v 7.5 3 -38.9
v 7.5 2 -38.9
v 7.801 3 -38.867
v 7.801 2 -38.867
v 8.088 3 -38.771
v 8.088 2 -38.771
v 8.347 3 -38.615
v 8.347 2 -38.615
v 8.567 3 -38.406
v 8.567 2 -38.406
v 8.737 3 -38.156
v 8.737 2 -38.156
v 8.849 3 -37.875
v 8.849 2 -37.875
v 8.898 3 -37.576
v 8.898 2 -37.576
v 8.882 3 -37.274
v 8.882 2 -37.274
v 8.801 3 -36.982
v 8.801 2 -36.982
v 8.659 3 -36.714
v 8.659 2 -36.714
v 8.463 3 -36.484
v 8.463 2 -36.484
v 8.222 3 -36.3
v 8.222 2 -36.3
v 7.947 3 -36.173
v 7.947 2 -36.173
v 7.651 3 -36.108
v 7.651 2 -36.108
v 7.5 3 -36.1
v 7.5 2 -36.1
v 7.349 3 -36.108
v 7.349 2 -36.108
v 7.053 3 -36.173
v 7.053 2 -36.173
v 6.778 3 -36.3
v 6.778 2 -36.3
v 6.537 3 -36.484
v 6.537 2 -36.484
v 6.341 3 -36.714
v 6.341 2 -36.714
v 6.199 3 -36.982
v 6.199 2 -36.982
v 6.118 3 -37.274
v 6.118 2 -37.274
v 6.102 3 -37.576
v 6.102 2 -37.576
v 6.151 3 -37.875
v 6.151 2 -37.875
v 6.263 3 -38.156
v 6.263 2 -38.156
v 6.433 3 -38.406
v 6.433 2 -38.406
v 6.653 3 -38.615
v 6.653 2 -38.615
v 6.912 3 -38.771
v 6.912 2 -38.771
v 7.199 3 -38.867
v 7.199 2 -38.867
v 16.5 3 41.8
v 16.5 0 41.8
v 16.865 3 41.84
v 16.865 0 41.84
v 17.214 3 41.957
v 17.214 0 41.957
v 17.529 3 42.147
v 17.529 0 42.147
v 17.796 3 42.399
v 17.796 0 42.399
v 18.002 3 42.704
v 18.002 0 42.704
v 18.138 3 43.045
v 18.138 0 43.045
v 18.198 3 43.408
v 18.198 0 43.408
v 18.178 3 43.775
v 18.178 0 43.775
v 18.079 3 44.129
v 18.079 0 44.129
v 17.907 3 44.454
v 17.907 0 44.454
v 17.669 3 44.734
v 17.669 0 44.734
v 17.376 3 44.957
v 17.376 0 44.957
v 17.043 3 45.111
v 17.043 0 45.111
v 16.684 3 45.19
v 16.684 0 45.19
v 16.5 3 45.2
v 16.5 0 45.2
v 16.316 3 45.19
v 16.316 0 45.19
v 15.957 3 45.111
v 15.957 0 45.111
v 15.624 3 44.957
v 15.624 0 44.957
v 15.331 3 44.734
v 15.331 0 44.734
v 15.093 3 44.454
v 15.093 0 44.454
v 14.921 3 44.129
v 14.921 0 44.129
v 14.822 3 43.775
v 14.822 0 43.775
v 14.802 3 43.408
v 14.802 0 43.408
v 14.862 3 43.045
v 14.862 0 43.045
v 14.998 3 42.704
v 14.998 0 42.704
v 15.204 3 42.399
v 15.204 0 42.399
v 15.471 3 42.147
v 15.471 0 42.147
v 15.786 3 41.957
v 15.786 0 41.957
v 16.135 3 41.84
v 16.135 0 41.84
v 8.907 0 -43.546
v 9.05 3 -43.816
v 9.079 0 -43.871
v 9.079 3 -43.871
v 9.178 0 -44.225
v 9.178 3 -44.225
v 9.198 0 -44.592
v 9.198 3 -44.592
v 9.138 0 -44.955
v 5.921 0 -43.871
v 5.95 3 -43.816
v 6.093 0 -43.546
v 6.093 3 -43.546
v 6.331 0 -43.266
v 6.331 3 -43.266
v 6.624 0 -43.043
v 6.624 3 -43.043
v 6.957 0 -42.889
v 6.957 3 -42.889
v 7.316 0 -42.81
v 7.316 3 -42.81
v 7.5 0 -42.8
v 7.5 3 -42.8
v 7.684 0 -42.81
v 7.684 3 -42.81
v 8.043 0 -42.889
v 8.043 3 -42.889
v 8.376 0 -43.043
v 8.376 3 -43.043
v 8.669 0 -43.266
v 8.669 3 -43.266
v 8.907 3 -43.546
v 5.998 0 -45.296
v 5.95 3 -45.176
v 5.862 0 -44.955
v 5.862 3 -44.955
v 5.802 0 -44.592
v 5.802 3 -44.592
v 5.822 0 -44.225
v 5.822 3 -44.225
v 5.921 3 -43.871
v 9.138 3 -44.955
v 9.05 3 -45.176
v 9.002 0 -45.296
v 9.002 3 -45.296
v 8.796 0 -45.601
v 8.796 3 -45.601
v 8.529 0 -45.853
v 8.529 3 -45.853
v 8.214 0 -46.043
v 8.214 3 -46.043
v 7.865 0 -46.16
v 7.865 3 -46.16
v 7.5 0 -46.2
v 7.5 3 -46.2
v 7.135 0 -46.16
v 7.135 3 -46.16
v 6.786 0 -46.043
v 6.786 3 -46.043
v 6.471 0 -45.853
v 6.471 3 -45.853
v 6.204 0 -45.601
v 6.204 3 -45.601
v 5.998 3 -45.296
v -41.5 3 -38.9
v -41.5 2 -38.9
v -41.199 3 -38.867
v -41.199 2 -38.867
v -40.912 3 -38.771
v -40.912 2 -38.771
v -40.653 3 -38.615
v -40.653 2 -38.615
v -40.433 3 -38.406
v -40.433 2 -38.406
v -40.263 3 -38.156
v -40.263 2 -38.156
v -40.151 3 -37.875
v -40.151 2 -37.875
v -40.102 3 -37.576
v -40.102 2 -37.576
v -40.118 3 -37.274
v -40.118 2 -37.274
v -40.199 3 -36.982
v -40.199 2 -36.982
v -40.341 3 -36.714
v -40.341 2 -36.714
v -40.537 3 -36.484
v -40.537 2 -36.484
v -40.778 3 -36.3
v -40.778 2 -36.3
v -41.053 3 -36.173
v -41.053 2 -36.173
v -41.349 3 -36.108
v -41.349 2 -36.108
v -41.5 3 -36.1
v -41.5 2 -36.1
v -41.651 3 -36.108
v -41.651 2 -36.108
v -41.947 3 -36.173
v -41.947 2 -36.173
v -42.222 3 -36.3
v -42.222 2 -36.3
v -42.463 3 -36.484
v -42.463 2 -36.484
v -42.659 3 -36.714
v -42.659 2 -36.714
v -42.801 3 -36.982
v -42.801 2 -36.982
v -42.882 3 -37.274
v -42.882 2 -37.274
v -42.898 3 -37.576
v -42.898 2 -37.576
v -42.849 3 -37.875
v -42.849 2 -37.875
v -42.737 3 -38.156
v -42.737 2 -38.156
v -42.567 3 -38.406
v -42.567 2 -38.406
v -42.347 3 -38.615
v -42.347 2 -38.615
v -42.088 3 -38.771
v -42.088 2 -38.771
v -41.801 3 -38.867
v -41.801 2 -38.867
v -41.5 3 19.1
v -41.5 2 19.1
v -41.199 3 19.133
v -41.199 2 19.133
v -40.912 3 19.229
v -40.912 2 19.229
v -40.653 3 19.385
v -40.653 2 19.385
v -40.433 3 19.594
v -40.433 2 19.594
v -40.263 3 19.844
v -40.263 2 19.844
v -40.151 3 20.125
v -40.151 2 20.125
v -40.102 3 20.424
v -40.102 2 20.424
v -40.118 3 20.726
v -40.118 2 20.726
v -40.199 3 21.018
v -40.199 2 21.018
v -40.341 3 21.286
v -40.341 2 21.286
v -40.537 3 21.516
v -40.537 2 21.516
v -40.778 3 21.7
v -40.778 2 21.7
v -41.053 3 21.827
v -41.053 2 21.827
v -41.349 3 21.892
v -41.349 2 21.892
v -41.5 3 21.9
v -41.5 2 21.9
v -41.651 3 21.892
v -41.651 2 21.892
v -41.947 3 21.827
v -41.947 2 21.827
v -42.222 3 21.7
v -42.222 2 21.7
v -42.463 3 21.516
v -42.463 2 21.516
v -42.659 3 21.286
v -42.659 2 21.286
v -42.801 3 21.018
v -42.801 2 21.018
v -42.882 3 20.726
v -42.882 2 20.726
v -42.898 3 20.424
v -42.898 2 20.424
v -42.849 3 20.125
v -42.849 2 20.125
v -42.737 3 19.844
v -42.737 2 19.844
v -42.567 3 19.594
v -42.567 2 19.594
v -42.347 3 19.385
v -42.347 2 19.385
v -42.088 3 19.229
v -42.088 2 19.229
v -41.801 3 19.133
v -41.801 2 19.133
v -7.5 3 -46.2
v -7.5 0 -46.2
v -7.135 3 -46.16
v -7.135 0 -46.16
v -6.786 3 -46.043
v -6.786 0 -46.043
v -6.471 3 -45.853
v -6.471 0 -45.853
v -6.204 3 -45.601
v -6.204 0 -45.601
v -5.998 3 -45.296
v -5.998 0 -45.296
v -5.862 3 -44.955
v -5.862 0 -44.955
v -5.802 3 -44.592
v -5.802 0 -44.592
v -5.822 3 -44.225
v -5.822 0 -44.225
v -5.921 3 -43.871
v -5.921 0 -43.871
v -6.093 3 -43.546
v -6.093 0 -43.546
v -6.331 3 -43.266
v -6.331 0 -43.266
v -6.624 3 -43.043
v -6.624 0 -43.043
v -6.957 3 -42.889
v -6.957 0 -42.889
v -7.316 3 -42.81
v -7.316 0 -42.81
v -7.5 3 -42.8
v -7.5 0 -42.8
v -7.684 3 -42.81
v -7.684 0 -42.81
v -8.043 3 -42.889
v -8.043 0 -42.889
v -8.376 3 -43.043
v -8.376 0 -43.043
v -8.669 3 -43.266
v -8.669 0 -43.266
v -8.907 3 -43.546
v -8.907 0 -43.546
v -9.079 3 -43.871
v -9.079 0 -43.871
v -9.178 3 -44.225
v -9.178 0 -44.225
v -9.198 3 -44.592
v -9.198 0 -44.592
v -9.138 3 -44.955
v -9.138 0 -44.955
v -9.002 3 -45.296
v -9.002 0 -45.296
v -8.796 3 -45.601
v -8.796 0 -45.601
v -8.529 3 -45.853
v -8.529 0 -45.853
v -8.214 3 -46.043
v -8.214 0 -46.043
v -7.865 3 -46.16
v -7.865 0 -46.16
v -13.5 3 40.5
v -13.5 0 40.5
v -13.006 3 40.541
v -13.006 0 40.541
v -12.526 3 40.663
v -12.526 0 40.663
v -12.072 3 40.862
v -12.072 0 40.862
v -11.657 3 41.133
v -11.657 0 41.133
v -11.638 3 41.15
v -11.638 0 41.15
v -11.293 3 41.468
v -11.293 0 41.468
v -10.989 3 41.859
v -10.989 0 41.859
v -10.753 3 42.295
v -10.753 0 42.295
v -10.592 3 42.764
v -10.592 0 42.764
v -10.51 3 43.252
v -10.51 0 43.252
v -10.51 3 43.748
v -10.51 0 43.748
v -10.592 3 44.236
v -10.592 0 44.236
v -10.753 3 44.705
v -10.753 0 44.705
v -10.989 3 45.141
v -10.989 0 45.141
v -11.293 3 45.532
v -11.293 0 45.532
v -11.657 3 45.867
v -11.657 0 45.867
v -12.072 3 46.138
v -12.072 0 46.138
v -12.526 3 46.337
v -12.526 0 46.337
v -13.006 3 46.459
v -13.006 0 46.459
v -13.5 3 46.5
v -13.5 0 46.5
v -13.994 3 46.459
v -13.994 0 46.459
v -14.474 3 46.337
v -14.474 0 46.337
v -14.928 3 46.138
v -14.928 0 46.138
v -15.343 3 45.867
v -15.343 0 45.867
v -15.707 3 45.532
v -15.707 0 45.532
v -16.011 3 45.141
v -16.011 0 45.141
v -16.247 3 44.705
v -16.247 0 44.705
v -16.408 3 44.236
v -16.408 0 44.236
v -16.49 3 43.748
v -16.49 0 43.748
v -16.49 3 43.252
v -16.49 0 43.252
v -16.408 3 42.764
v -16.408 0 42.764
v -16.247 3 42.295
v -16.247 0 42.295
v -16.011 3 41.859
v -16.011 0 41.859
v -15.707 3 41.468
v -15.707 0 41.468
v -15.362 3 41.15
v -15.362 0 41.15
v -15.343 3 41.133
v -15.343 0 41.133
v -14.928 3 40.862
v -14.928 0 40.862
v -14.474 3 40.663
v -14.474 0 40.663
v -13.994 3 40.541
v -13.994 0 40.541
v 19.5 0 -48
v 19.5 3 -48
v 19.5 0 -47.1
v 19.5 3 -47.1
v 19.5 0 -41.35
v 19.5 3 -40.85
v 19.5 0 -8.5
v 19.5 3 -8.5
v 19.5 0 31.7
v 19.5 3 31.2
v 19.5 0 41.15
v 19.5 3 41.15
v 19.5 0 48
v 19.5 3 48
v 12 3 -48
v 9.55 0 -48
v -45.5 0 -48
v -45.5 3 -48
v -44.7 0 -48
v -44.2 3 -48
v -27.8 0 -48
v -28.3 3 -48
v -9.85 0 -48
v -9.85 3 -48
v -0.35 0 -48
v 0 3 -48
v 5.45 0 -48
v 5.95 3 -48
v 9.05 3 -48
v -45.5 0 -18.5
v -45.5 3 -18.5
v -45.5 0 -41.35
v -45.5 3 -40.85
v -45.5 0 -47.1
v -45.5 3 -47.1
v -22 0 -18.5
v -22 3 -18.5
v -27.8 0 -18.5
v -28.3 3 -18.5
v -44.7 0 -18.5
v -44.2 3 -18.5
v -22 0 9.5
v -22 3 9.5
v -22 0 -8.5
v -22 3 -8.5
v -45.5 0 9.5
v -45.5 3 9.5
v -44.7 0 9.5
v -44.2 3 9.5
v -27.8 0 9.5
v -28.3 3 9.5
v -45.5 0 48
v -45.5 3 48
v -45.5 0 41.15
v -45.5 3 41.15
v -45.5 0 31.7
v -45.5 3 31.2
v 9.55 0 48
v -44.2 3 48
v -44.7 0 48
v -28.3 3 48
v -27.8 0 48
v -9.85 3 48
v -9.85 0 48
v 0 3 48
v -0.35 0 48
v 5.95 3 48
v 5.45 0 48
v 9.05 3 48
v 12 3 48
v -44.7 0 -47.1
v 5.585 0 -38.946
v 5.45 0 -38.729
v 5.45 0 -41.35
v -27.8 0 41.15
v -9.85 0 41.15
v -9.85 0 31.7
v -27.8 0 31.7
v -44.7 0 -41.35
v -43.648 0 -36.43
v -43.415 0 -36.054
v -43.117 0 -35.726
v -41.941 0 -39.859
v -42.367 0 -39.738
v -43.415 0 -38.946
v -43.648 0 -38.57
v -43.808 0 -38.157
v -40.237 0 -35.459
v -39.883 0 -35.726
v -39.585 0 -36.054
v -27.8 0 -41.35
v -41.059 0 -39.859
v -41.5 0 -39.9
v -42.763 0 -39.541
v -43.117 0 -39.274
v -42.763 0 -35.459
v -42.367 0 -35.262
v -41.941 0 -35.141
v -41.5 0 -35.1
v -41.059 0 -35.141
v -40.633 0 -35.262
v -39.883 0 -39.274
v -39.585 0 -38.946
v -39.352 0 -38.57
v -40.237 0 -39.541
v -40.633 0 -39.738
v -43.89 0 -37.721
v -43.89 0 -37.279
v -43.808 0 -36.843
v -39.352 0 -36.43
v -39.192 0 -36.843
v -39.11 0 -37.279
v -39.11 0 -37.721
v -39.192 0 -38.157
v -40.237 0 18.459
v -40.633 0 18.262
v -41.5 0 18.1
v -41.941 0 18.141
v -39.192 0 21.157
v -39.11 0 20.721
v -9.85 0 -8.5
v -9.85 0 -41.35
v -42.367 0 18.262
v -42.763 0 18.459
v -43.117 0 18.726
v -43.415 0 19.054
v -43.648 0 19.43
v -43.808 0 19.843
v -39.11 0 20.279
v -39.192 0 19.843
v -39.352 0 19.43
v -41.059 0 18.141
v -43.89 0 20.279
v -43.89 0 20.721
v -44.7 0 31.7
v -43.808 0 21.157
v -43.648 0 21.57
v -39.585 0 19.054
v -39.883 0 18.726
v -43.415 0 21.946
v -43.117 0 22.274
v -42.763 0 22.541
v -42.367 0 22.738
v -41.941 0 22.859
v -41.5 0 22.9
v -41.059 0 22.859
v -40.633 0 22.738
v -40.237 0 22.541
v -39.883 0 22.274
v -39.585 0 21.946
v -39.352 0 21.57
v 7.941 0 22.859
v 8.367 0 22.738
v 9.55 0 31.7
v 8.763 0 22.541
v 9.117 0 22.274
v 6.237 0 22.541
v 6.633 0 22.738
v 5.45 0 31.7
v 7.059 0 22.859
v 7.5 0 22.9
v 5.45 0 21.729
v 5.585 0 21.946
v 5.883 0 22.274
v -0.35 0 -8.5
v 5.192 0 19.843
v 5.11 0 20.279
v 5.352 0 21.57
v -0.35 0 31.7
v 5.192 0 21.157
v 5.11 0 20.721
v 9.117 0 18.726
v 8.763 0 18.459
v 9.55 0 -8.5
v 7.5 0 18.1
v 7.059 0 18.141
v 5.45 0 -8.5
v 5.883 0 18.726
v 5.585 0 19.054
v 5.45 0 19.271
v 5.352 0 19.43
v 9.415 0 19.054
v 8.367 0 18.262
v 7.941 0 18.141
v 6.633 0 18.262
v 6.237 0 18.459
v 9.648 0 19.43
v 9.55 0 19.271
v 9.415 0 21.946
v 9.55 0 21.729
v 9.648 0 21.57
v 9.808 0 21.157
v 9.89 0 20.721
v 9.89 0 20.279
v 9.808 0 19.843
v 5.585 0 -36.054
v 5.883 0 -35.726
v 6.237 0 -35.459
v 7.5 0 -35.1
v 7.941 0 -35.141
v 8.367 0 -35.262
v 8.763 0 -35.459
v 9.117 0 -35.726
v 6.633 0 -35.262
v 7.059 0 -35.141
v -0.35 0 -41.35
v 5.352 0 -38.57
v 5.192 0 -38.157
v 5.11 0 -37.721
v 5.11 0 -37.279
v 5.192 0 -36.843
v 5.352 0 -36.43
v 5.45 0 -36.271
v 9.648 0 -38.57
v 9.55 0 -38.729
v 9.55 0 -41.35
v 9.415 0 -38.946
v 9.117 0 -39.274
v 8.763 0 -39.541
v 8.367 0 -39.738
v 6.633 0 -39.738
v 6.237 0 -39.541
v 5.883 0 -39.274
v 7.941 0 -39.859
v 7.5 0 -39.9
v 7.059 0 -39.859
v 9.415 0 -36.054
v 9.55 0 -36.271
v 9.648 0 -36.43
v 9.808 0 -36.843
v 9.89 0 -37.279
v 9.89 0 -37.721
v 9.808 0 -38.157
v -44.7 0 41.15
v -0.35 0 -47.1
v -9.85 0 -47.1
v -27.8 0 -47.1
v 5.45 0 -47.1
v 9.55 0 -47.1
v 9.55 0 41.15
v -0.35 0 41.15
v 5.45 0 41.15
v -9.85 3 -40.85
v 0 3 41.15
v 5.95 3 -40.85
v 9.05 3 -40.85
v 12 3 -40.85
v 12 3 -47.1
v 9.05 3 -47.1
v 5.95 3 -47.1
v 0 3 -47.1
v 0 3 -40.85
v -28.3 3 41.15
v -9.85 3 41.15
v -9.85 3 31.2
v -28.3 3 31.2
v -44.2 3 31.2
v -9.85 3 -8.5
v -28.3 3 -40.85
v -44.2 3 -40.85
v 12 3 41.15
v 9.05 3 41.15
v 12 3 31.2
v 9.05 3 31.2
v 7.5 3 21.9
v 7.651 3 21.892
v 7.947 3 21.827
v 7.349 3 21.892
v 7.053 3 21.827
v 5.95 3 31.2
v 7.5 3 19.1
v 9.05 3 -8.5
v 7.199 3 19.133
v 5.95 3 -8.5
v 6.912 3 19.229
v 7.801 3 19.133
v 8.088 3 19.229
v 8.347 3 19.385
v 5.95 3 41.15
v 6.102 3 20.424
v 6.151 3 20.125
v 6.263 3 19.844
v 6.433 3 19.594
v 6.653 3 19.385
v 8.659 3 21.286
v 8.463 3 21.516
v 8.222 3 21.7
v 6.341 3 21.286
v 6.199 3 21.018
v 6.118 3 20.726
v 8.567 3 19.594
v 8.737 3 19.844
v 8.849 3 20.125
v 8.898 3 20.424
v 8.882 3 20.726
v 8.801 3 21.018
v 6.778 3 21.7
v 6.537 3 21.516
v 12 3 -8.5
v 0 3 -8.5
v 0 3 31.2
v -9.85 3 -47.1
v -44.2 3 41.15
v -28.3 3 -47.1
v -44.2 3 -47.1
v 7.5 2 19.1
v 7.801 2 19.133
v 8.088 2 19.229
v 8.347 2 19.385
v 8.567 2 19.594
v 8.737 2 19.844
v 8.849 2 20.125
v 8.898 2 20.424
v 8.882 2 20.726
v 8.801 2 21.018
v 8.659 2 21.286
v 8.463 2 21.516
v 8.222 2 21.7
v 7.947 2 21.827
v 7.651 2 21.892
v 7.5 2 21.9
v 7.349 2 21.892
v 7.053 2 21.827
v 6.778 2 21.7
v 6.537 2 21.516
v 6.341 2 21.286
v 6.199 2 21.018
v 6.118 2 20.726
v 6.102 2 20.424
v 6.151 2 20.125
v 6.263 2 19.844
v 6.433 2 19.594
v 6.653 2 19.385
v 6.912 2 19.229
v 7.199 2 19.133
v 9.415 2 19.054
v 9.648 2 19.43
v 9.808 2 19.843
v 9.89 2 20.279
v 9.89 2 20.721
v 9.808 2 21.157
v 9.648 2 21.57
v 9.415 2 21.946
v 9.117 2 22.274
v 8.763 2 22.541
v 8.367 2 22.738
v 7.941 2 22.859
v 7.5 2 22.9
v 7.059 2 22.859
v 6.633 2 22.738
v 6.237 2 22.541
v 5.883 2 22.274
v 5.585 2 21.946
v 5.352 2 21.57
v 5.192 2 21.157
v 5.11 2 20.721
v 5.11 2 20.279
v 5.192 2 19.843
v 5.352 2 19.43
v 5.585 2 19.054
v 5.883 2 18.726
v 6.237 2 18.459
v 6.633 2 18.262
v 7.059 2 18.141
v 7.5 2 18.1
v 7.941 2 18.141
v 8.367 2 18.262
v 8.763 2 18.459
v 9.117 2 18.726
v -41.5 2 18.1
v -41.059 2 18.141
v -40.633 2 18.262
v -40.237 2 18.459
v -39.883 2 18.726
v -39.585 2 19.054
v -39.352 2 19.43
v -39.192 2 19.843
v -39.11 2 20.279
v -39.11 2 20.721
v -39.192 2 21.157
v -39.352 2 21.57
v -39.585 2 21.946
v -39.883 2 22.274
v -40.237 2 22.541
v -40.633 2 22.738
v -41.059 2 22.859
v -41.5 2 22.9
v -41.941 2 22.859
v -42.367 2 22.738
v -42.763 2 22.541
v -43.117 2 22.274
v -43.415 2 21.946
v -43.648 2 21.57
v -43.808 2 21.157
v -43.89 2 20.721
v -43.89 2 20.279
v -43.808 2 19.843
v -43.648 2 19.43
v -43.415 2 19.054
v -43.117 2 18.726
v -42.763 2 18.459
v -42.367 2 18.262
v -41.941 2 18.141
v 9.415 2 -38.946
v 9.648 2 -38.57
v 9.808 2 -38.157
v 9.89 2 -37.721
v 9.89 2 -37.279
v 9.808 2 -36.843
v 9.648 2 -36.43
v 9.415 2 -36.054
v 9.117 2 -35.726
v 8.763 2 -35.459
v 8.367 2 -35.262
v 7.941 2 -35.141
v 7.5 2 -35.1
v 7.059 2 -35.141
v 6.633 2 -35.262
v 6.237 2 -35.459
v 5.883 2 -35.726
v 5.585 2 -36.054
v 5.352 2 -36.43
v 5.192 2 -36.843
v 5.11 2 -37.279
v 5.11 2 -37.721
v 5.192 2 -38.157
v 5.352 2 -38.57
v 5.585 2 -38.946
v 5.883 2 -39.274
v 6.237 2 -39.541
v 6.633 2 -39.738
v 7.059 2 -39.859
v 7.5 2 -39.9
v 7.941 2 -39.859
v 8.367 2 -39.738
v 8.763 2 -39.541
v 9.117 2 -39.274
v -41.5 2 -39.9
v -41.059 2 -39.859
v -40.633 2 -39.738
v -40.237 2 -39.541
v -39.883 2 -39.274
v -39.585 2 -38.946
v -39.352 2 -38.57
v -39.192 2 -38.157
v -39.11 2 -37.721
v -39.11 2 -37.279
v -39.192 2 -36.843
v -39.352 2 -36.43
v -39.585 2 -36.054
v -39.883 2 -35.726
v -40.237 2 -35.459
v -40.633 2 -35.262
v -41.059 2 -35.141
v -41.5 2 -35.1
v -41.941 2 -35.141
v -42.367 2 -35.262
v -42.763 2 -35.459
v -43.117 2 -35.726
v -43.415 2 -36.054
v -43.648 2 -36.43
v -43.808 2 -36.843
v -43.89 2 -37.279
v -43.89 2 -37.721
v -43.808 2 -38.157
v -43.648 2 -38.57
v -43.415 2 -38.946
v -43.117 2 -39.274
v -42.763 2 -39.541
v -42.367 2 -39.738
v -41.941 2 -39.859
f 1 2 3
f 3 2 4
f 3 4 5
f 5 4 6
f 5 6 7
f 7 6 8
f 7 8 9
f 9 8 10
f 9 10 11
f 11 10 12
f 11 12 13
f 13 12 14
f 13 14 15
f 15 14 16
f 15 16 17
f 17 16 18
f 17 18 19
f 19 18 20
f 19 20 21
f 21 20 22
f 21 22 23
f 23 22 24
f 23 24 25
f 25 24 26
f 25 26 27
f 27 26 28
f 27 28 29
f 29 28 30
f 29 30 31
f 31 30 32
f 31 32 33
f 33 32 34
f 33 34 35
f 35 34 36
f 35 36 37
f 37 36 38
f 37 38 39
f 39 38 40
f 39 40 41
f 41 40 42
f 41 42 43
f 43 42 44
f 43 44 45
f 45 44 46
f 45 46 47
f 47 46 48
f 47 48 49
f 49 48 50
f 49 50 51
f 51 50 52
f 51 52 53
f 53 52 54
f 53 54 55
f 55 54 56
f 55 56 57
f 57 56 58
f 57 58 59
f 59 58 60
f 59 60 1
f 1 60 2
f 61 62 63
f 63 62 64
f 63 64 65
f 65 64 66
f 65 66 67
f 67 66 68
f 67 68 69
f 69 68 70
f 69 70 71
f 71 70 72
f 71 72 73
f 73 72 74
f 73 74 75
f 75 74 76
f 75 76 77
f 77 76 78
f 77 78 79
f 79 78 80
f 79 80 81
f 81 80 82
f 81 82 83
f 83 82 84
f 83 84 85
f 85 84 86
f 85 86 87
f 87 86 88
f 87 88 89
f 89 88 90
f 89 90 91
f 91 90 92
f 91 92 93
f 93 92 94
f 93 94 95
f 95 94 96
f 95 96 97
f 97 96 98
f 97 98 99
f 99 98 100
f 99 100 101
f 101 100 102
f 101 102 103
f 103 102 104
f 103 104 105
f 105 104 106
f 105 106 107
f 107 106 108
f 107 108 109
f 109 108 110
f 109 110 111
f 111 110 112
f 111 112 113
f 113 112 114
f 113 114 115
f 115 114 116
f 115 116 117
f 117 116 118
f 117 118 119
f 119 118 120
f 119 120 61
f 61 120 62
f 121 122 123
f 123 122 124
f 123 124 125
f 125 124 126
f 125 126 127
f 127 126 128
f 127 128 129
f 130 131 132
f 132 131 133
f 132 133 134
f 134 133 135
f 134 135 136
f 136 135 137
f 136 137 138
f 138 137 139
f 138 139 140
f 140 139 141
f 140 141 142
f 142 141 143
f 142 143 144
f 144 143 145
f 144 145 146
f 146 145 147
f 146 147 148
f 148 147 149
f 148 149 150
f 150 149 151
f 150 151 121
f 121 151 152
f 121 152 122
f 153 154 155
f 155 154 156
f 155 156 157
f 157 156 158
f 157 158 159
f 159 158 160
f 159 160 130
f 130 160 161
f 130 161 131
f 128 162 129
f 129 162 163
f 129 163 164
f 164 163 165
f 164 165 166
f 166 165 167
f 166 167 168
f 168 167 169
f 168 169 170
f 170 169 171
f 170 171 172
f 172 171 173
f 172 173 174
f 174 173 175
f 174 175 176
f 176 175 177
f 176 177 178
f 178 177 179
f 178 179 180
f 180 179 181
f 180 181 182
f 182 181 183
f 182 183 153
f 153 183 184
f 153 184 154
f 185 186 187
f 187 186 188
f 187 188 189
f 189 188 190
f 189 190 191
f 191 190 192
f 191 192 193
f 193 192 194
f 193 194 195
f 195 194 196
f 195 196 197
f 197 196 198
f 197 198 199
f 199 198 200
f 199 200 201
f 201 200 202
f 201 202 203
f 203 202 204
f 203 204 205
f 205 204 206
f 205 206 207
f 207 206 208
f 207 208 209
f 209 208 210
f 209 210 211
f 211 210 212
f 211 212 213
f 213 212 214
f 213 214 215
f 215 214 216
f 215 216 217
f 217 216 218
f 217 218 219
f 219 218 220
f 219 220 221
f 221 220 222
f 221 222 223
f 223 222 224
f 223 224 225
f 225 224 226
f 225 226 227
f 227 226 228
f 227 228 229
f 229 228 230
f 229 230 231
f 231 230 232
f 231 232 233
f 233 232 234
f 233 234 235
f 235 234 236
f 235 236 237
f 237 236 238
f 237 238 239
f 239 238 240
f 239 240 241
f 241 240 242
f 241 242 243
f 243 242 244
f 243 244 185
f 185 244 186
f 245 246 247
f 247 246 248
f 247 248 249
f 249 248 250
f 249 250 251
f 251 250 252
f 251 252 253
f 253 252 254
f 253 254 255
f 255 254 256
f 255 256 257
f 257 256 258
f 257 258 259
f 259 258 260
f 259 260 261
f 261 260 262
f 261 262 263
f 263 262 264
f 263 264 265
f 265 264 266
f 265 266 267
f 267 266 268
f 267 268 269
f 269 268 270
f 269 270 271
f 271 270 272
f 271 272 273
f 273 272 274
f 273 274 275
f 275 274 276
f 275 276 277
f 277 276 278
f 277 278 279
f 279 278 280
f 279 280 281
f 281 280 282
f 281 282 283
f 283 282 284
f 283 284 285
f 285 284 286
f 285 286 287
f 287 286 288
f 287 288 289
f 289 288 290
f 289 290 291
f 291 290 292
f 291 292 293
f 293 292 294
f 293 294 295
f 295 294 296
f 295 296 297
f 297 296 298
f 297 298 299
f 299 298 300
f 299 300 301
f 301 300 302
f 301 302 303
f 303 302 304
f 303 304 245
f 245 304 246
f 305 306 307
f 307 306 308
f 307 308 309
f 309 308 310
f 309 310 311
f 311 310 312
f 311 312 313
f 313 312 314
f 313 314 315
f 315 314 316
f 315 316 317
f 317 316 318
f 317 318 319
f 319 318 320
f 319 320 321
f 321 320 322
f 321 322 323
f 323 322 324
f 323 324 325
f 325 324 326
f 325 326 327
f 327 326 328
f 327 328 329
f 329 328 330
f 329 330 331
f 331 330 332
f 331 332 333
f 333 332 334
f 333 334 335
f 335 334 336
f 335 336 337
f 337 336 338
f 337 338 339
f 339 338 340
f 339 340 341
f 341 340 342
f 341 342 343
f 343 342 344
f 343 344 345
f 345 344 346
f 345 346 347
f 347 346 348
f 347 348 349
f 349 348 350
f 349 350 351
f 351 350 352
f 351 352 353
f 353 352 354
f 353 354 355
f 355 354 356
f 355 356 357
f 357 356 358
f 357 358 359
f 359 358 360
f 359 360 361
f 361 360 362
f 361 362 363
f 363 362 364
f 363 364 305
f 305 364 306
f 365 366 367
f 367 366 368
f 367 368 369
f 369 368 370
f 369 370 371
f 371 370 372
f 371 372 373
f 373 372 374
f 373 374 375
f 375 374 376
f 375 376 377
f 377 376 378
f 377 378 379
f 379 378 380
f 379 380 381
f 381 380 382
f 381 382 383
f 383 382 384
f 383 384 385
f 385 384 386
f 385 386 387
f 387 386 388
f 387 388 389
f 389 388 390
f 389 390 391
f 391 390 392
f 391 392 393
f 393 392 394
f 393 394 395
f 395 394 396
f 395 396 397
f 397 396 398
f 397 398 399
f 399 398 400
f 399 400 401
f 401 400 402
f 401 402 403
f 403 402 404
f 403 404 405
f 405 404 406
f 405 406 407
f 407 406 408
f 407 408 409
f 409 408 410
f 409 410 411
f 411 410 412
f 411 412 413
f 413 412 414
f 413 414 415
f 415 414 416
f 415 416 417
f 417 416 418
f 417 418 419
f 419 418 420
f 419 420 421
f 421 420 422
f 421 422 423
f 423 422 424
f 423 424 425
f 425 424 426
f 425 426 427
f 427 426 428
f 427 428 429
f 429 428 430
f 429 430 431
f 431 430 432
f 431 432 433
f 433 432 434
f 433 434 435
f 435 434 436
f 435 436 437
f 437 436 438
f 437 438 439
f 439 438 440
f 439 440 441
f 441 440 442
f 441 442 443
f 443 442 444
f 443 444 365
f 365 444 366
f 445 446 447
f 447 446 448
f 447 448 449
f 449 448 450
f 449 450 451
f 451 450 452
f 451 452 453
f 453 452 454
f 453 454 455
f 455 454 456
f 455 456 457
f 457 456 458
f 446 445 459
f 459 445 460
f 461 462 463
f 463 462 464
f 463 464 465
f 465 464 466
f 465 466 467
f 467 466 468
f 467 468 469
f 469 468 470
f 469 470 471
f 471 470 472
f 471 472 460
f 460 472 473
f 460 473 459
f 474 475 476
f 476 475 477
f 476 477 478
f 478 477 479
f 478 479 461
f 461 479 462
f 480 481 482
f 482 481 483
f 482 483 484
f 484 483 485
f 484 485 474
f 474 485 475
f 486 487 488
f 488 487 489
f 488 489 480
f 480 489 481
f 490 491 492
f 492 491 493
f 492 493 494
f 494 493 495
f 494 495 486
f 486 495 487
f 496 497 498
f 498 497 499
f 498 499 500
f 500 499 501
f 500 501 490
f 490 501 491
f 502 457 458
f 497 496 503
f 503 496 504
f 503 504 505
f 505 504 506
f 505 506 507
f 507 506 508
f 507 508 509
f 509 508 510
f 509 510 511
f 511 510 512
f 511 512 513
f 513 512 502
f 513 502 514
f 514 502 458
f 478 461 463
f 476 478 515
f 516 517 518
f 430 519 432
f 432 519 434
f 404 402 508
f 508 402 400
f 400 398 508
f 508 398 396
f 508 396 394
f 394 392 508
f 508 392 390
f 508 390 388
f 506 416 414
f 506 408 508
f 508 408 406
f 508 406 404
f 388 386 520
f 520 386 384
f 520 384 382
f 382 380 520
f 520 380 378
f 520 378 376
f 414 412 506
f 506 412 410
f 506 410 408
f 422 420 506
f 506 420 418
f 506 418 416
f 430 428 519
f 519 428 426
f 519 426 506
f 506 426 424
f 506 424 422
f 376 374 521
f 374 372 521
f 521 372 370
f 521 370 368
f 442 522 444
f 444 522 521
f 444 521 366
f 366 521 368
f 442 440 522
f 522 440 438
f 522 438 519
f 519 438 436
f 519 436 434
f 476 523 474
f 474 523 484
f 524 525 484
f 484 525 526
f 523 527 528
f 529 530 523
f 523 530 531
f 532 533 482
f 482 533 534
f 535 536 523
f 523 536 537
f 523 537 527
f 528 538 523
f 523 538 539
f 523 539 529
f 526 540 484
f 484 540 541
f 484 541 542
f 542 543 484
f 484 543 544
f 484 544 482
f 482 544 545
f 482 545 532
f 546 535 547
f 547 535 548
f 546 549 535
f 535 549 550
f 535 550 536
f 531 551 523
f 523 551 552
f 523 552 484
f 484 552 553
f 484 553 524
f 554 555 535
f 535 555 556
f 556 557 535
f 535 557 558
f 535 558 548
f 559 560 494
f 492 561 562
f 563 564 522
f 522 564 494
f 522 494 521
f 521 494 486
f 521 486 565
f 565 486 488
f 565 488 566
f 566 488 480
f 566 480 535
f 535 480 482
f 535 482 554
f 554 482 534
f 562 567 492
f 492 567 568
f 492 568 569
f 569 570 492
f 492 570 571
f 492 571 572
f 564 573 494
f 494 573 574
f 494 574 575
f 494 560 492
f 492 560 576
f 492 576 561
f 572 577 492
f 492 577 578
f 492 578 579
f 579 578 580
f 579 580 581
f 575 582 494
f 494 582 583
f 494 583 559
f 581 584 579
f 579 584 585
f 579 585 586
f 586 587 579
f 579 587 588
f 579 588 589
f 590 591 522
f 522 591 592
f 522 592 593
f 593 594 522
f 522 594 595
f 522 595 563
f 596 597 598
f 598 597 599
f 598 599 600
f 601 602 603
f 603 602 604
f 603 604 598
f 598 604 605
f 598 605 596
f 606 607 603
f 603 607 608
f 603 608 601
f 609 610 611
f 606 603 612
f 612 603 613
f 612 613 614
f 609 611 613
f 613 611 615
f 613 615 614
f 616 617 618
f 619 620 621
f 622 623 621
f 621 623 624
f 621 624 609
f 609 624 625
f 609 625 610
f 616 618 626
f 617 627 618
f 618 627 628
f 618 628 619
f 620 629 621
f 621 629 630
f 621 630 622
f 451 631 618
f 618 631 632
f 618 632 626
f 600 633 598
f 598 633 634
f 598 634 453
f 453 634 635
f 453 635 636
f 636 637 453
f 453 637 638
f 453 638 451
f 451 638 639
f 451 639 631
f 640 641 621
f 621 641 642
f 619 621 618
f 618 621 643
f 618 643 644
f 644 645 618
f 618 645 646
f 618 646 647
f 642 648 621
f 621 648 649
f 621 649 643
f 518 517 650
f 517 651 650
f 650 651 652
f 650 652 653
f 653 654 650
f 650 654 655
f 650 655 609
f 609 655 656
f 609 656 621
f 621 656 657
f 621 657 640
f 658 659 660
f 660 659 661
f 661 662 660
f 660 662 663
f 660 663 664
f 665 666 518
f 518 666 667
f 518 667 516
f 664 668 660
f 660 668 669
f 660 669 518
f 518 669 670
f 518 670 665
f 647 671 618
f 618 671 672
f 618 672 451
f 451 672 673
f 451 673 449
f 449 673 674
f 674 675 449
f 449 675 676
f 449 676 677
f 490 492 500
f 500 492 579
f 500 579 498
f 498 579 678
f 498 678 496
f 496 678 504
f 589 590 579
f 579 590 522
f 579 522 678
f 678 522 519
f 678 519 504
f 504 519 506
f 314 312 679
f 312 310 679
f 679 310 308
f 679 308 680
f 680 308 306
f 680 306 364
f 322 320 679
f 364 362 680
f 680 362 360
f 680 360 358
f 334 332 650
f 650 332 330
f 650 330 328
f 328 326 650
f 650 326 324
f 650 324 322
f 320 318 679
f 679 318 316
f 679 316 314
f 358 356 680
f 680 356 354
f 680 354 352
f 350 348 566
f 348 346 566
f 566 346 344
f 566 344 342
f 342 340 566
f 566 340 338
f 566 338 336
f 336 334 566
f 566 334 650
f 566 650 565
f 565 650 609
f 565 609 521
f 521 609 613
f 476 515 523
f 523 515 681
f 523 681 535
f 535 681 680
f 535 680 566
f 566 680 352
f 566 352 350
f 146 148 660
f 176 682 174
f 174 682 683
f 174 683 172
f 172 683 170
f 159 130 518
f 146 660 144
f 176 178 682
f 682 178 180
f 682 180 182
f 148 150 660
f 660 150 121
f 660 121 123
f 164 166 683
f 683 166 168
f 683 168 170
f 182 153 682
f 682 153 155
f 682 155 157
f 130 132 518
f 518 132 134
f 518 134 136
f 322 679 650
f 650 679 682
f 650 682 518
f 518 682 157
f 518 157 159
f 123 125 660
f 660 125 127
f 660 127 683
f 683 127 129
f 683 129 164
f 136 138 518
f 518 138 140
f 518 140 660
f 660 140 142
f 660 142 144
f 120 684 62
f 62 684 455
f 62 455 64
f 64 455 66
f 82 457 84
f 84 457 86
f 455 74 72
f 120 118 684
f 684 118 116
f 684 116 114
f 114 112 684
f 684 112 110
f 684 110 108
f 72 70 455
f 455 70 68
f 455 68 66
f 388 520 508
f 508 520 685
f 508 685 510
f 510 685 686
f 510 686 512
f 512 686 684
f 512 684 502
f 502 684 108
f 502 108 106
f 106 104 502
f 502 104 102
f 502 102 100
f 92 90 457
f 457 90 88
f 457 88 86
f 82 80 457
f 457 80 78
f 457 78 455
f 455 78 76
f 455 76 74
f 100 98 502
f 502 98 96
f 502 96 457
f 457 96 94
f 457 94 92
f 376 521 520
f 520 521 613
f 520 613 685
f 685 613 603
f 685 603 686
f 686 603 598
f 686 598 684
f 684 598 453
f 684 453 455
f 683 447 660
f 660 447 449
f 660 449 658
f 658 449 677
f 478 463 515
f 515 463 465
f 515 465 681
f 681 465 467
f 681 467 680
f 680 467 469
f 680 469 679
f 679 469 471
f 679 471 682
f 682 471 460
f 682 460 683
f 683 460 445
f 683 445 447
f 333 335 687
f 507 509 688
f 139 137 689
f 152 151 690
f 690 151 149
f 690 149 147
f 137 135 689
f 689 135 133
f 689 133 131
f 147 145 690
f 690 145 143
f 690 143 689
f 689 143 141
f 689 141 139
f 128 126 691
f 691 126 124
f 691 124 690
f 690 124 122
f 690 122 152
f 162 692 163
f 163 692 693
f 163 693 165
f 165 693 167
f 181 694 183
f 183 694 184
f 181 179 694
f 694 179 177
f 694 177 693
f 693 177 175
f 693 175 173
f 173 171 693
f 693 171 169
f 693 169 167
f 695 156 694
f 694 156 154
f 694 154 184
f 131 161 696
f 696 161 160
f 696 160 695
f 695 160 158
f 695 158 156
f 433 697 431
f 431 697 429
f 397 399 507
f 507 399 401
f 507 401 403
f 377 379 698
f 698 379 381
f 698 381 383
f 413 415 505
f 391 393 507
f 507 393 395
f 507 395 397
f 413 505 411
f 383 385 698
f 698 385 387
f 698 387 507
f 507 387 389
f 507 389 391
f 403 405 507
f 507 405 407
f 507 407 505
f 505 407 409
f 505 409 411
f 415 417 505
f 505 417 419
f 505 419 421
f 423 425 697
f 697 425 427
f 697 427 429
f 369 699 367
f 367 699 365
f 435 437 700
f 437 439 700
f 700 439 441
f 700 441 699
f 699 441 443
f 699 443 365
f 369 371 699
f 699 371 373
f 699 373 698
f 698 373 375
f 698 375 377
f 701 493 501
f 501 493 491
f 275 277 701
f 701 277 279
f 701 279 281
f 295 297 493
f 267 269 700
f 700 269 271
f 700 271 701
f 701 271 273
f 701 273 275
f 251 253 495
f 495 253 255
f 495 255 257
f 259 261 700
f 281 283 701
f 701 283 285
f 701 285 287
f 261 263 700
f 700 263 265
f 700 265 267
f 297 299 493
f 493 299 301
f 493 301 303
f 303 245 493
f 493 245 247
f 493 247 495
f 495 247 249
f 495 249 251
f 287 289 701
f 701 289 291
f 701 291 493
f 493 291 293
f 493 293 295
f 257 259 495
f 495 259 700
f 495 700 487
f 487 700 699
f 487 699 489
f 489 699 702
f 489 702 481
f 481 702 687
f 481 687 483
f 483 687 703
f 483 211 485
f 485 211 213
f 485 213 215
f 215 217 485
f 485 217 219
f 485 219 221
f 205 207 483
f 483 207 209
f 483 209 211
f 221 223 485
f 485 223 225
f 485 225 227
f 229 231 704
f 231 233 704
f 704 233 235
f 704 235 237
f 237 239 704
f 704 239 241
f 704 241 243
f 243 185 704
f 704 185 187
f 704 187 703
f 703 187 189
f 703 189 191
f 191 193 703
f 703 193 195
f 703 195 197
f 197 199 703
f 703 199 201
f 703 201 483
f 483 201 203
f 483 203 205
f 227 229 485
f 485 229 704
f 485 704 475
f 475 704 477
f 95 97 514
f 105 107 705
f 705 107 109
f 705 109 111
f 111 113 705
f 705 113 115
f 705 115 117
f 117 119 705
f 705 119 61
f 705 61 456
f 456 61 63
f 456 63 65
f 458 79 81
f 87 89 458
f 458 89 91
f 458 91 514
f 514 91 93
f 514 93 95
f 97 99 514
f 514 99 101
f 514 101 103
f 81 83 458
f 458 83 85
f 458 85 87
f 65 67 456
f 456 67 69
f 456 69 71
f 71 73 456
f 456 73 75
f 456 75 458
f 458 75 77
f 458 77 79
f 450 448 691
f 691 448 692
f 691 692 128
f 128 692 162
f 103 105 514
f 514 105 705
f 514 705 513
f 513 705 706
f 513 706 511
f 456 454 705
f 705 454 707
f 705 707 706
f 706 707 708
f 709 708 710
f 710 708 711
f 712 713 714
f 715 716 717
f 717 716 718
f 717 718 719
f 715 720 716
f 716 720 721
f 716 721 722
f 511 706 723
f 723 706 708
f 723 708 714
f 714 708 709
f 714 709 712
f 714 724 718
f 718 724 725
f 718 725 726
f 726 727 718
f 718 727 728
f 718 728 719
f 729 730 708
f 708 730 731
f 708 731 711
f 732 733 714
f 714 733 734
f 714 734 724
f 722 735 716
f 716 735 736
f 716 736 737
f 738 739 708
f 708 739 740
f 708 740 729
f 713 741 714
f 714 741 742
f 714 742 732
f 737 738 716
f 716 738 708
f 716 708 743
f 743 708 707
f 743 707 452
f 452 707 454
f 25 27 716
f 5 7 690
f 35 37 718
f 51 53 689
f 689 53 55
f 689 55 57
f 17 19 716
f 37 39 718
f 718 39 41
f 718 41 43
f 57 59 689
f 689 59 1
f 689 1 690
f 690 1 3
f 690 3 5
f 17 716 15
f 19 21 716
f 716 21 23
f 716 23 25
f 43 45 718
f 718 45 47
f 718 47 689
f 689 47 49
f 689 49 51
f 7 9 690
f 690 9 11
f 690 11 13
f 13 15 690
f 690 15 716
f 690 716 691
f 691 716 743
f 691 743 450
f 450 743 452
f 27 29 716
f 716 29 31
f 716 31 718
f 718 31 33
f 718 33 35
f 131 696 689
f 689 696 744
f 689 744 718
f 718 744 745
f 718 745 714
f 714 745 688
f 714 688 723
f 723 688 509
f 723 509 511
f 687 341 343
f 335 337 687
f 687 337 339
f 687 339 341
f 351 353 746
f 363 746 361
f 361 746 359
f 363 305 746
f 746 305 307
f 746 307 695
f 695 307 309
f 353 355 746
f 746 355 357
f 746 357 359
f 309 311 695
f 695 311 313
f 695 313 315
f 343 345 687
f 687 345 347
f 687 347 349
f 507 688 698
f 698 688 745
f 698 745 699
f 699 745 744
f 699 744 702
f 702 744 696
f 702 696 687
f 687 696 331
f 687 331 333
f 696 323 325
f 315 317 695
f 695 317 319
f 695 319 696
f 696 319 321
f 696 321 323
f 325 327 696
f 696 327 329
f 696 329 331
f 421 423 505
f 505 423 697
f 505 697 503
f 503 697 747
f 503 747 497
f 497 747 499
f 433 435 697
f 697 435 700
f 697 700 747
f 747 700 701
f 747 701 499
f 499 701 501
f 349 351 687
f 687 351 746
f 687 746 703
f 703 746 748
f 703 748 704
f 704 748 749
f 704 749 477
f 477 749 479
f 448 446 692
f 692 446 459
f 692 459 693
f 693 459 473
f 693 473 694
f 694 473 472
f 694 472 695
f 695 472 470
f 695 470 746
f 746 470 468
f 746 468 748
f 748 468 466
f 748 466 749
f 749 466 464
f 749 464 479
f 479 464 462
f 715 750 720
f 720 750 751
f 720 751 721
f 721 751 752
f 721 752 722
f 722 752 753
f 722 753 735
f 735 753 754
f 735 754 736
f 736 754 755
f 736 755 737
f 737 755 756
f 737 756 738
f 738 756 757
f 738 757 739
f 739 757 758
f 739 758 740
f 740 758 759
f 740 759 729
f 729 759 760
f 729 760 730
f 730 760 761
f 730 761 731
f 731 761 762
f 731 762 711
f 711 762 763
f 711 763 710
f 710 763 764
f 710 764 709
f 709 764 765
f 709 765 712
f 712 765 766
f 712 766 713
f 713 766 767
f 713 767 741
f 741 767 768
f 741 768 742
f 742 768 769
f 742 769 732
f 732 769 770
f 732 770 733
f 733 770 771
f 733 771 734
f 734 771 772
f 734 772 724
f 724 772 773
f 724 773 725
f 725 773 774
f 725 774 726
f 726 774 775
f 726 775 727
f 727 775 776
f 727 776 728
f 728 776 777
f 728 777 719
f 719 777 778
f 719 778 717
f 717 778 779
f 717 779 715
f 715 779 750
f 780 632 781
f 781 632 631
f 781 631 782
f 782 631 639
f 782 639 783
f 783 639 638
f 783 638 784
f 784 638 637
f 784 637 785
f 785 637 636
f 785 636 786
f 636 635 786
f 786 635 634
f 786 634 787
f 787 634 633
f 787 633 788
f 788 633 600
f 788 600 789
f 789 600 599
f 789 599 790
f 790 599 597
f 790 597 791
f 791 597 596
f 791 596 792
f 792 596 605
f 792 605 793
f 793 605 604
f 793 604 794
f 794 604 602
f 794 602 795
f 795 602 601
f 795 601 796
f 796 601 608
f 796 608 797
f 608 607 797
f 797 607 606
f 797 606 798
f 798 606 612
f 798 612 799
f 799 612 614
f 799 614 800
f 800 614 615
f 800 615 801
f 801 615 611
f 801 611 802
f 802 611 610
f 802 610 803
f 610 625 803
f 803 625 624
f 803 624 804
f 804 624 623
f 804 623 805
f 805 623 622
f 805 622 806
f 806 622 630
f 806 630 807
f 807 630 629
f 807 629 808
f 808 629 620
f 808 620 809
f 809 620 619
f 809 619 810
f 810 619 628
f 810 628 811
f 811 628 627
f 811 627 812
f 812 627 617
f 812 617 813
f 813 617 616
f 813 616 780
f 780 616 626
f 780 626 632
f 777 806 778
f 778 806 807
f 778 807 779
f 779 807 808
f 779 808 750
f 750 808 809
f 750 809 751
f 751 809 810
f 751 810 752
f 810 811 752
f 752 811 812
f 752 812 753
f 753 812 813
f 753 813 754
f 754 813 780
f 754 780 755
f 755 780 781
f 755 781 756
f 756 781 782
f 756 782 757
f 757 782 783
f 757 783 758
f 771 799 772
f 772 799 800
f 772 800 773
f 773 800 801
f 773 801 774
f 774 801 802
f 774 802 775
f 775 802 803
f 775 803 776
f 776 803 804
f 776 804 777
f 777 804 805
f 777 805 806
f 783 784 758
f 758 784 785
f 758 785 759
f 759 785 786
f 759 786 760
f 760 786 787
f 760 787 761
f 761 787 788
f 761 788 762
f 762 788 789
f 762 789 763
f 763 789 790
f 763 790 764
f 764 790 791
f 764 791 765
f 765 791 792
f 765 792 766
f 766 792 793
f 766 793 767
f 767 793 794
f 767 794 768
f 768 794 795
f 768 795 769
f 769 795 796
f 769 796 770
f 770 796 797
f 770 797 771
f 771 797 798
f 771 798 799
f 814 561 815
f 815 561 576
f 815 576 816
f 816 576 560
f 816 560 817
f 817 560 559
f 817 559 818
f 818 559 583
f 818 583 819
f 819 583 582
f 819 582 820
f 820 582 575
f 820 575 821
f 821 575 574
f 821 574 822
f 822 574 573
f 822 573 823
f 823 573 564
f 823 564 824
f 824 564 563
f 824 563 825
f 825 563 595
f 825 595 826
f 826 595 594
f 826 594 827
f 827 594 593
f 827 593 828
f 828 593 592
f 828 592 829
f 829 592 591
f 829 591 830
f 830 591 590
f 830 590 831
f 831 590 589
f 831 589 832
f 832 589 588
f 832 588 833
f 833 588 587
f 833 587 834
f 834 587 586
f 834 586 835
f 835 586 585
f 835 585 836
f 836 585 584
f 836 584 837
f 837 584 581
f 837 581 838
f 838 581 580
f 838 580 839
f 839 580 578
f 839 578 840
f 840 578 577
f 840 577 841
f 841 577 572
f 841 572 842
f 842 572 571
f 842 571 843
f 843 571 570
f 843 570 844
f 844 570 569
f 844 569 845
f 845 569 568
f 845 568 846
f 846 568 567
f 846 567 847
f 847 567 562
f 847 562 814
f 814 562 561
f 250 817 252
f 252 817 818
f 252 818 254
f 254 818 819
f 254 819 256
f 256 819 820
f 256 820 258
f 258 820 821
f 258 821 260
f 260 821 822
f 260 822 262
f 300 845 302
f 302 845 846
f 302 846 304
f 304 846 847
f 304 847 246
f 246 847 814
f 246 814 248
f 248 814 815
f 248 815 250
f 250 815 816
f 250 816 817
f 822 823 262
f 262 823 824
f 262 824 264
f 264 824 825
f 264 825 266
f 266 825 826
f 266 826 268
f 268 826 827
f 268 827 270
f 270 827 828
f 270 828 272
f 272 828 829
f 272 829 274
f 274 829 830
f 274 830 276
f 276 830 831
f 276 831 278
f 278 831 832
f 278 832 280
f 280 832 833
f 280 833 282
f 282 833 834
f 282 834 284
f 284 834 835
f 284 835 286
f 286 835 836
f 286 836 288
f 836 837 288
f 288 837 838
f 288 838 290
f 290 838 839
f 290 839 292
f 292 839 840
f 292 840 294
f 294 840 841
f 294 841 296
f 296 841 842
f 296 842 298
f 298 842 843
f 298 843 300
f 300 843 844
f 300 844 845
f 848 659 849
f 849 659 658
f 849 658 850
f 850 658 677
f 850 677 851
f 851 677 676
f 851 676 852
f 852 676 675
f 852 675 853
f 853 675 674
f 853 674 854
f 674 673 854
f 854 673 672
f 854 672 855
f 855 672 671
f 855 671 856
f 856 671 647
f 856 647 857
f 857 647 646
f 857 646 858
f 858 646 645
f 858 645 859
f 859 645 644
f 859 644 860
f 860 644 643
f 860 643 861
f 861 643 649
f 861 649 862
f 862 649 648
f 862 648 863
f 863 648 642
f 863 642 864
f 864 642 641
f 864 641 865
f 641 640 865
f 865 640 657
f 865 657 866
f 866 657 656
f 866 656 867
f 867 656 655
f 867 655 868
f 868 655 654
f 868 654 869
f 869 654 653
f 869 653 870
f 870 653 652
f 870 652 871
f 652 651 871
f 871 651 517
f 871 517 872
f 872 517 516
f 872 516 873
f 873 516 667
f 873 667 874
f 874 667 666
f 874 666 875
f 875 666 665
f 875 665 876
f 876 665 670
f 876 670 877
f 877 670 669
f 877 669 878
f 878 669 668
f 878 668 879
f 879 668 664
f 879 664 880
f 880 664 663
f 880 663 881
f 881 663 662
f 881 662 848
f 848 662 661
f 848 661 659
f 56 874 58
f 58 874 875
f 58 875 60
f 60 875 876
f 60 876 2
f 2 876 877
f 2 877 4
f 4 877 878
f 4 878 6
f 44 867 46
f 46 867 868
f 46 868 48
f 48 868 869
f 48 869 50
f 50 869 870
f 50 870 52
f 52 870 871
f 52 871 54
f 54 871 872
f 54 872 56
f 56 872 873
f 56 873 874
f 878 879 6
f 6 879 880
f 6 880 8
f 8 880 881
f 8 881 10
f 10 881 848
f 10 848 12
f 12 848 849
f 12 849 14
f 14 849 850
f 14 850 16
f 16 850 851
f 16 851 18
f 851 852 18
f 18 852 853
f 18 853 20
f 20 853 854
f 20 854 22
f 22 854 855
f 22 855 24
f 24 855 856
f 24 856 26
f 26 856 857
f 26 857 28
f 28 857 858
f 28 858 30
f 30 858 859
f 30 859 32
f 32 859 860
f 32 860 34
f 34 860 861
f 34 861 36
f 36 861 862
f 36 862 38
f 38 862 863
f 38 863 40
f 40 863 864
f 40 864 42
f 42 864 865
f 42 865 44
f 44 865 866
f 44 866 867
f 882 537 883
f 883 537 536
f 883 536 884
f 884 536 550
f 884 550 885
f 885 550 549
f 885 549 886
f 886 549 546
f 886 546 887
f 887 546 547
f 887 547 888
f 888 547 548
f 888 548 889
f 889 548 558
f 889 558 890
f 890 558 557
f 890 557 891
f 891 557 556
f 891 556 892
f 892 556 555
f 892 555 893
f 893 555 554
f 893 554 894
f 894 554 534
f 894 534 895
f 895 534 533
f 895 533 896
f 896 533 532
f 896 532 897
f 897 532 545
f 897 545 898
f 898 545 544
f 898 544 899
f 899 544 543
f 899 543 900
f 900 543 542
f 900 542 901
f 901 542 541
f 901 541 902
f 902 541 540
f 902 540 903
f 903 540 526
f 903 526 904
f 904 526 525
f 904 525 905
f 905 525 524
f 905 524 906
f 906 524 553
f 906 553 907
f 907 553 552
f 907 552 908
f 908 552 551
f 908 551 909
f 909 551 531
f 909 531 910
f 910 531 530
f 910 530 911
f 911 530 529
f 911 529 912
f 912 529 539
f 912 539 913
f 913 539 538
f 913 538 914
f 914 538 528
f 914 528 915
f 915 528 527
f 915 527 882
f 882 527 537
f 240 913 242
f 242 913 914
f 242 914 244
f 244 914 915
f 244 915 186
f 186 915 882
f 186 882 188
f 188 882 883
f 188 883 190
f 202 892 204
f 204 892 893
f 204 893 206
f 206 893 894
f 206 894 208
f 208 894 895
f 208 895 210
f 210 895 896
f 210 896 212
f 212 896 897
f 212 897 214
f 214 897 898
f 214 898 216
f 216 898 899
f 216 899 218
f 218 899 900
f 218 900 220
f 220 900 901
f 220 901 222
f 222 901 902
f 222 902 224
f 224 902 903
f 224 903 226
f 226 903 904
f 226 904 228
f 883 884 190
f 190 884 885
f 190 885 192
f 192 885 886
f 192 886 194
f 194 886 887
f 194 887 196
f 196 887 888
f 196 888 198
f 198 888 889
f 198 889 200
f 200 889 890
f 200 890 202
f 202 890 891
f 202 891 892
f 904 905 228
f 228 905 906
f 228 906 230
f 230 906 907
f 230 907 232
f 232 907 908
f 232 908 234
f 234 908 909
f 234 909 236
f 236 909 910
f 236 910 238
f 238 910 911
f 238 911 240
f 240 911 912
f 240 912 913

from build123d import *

# Parameters (mm, degrees)
ESQUISSE1_R             = 1.7
ESQUISSE1_R_2           = 3
ESQUISSE1_R_3           = 1.4
BOSS_EXTRU_1_DEPTH      = 3
ESQUISSE1_3_R           = 2.4
ESQUISSE1_3_R_2         = 1.4
ENL_V_MAT_EXTRU_1_DEPTH = 2


with BuildPart() as part:
    # Esquisse1 → Boss.-Extru.1 (new body)
    with BuildSketch(Plane(origin=(0, 0, 0), x_dir=(1, 0, 0), z_dir=(0, 1, 0))):
        Polygon((19.5, 48), (-45.5, 48), (-45.5, 18.5), (-22, 18.5), (-22, -9.5), (-45.5, -9.5), (-45.5, -48), (19.5, -48), align=None)
        with Locations(Location((16.5, -43.5, 0), (0, 0, 270))):
            Circle(ESQUISSE1_R, mode=Mode.SUBTRACT)
        with Locations(Location((7.5, 44.5, 0), (0, 0, 270))):
            Circle(ESQUISSE1_R, mode=Mode.SUBTRACT)
        with Locations(Location((-7.5, 44.5, 0), (0, 0, 270))):
            Circle(ESQUISSE1_R, mode=Mode.SUBTRACT)
        with Locations(Location((-13.5, -43.5, 0), (0, 0, 270))):
            Circle(ESQUISSE1_R_2, mode=Mode.SUBTRACT)
        with Locations(Location((-41.5, -20.5, 0), (0, 0, 270))):
            Circle(ESQUISSE1_R_3, mode=Mode.SUBTRACT)
        with Locations(Location((7.5, -20.5, 0), (0, 0, 270))):
            Circle(ESQUISSE1_R_3, mode=Mode.SUBTRACT)
        with Locations(Location((7.5, 37.5, 0), (0, 0, 270))):
            Circle(ESQUISSE1_R_3, mode=Mode.SUBTRACT)
        with Locations(Location((-41.5, 37.5, 0), (0, 0, 270))):
            Circle(ESQUISSE1_R_3, mode=Mode.SUBTRACT)
    extrude(amount=BOSS_EXTRU_1_DEPTH)

    # Esquisse1<3> → Enlèv. mat.-Extru.1 (cut)
    # profile 1 of 4: a face of its own
    with BuildSketch(Plane(origin=(0, 0, 0), x_dir=(1, 0, 0), z_dir=(0, 1, 0))):
        with Locations(Location((-41.5, -20.5, 0), (0, 0, 270))):
            Circle(ESQUISSE1_3_R)
        with Locations(Location((-41.5, -20.5, 0), (0, 0, 270))):
            Circle(ESQUISSE1_3_R_2, mode=Mode.SUBTRACT)
    # profile 2 of 4: a face of its own
    with BuildSketch(Plane(origin=(0, 0, 0), x_dir=(1, 0, 0), z_dir=(0, 1, 0))):
        with Locations(Location((7.5, -20.5, 0), (0, 0, 270))):
            Circle(ESQUISSE1_3_R)
        with Locations(Location((7.5, -20.5, 0), (0, 0, 270))):
            Circle(ESQUISSE1_3_R_2, mode=Mode.SUBTRACT)
    # profile 3 of 4: a face of its own
    with BuildSketch(Plane(origin=(0, 0, 0), x_dir=(1, 0, 0), z_dir=(0, 1, 0))):
        with Locations(Location((7.5, 37.5, 0), (0, 0, 270))):
            Circle(ESQUISSE1_3_R)
        with Locations(Location((7.5, 37.5, 0), (0, 0, 270))):
            Circle(ESQUISSE1_3_R_2, mode=Mode.SUBTRACT)
    # profile 4 of 4: a face of its own
    with BuildSketch(Plane(origin=(0, 0, 0), x_dir=(1, 0, 0), z_dir=(0, 1, 0))):
        with Locations(Location((-41.5, 37.5, 0), (0, 0, 270))):
            Circle(ESQUISSE1_3_R)
        with Locations(Location((-41.5, 37.5, 0), (0, 0, 270))):
            Circle(ESQUISSE1_3_R_2, mode=Mode.SUBTRACT)
    extrude(amount=ENL_V_MAT_EXTRU_1_DEPTH, mode=Mode.SUBTRACT)


solid = part.part
